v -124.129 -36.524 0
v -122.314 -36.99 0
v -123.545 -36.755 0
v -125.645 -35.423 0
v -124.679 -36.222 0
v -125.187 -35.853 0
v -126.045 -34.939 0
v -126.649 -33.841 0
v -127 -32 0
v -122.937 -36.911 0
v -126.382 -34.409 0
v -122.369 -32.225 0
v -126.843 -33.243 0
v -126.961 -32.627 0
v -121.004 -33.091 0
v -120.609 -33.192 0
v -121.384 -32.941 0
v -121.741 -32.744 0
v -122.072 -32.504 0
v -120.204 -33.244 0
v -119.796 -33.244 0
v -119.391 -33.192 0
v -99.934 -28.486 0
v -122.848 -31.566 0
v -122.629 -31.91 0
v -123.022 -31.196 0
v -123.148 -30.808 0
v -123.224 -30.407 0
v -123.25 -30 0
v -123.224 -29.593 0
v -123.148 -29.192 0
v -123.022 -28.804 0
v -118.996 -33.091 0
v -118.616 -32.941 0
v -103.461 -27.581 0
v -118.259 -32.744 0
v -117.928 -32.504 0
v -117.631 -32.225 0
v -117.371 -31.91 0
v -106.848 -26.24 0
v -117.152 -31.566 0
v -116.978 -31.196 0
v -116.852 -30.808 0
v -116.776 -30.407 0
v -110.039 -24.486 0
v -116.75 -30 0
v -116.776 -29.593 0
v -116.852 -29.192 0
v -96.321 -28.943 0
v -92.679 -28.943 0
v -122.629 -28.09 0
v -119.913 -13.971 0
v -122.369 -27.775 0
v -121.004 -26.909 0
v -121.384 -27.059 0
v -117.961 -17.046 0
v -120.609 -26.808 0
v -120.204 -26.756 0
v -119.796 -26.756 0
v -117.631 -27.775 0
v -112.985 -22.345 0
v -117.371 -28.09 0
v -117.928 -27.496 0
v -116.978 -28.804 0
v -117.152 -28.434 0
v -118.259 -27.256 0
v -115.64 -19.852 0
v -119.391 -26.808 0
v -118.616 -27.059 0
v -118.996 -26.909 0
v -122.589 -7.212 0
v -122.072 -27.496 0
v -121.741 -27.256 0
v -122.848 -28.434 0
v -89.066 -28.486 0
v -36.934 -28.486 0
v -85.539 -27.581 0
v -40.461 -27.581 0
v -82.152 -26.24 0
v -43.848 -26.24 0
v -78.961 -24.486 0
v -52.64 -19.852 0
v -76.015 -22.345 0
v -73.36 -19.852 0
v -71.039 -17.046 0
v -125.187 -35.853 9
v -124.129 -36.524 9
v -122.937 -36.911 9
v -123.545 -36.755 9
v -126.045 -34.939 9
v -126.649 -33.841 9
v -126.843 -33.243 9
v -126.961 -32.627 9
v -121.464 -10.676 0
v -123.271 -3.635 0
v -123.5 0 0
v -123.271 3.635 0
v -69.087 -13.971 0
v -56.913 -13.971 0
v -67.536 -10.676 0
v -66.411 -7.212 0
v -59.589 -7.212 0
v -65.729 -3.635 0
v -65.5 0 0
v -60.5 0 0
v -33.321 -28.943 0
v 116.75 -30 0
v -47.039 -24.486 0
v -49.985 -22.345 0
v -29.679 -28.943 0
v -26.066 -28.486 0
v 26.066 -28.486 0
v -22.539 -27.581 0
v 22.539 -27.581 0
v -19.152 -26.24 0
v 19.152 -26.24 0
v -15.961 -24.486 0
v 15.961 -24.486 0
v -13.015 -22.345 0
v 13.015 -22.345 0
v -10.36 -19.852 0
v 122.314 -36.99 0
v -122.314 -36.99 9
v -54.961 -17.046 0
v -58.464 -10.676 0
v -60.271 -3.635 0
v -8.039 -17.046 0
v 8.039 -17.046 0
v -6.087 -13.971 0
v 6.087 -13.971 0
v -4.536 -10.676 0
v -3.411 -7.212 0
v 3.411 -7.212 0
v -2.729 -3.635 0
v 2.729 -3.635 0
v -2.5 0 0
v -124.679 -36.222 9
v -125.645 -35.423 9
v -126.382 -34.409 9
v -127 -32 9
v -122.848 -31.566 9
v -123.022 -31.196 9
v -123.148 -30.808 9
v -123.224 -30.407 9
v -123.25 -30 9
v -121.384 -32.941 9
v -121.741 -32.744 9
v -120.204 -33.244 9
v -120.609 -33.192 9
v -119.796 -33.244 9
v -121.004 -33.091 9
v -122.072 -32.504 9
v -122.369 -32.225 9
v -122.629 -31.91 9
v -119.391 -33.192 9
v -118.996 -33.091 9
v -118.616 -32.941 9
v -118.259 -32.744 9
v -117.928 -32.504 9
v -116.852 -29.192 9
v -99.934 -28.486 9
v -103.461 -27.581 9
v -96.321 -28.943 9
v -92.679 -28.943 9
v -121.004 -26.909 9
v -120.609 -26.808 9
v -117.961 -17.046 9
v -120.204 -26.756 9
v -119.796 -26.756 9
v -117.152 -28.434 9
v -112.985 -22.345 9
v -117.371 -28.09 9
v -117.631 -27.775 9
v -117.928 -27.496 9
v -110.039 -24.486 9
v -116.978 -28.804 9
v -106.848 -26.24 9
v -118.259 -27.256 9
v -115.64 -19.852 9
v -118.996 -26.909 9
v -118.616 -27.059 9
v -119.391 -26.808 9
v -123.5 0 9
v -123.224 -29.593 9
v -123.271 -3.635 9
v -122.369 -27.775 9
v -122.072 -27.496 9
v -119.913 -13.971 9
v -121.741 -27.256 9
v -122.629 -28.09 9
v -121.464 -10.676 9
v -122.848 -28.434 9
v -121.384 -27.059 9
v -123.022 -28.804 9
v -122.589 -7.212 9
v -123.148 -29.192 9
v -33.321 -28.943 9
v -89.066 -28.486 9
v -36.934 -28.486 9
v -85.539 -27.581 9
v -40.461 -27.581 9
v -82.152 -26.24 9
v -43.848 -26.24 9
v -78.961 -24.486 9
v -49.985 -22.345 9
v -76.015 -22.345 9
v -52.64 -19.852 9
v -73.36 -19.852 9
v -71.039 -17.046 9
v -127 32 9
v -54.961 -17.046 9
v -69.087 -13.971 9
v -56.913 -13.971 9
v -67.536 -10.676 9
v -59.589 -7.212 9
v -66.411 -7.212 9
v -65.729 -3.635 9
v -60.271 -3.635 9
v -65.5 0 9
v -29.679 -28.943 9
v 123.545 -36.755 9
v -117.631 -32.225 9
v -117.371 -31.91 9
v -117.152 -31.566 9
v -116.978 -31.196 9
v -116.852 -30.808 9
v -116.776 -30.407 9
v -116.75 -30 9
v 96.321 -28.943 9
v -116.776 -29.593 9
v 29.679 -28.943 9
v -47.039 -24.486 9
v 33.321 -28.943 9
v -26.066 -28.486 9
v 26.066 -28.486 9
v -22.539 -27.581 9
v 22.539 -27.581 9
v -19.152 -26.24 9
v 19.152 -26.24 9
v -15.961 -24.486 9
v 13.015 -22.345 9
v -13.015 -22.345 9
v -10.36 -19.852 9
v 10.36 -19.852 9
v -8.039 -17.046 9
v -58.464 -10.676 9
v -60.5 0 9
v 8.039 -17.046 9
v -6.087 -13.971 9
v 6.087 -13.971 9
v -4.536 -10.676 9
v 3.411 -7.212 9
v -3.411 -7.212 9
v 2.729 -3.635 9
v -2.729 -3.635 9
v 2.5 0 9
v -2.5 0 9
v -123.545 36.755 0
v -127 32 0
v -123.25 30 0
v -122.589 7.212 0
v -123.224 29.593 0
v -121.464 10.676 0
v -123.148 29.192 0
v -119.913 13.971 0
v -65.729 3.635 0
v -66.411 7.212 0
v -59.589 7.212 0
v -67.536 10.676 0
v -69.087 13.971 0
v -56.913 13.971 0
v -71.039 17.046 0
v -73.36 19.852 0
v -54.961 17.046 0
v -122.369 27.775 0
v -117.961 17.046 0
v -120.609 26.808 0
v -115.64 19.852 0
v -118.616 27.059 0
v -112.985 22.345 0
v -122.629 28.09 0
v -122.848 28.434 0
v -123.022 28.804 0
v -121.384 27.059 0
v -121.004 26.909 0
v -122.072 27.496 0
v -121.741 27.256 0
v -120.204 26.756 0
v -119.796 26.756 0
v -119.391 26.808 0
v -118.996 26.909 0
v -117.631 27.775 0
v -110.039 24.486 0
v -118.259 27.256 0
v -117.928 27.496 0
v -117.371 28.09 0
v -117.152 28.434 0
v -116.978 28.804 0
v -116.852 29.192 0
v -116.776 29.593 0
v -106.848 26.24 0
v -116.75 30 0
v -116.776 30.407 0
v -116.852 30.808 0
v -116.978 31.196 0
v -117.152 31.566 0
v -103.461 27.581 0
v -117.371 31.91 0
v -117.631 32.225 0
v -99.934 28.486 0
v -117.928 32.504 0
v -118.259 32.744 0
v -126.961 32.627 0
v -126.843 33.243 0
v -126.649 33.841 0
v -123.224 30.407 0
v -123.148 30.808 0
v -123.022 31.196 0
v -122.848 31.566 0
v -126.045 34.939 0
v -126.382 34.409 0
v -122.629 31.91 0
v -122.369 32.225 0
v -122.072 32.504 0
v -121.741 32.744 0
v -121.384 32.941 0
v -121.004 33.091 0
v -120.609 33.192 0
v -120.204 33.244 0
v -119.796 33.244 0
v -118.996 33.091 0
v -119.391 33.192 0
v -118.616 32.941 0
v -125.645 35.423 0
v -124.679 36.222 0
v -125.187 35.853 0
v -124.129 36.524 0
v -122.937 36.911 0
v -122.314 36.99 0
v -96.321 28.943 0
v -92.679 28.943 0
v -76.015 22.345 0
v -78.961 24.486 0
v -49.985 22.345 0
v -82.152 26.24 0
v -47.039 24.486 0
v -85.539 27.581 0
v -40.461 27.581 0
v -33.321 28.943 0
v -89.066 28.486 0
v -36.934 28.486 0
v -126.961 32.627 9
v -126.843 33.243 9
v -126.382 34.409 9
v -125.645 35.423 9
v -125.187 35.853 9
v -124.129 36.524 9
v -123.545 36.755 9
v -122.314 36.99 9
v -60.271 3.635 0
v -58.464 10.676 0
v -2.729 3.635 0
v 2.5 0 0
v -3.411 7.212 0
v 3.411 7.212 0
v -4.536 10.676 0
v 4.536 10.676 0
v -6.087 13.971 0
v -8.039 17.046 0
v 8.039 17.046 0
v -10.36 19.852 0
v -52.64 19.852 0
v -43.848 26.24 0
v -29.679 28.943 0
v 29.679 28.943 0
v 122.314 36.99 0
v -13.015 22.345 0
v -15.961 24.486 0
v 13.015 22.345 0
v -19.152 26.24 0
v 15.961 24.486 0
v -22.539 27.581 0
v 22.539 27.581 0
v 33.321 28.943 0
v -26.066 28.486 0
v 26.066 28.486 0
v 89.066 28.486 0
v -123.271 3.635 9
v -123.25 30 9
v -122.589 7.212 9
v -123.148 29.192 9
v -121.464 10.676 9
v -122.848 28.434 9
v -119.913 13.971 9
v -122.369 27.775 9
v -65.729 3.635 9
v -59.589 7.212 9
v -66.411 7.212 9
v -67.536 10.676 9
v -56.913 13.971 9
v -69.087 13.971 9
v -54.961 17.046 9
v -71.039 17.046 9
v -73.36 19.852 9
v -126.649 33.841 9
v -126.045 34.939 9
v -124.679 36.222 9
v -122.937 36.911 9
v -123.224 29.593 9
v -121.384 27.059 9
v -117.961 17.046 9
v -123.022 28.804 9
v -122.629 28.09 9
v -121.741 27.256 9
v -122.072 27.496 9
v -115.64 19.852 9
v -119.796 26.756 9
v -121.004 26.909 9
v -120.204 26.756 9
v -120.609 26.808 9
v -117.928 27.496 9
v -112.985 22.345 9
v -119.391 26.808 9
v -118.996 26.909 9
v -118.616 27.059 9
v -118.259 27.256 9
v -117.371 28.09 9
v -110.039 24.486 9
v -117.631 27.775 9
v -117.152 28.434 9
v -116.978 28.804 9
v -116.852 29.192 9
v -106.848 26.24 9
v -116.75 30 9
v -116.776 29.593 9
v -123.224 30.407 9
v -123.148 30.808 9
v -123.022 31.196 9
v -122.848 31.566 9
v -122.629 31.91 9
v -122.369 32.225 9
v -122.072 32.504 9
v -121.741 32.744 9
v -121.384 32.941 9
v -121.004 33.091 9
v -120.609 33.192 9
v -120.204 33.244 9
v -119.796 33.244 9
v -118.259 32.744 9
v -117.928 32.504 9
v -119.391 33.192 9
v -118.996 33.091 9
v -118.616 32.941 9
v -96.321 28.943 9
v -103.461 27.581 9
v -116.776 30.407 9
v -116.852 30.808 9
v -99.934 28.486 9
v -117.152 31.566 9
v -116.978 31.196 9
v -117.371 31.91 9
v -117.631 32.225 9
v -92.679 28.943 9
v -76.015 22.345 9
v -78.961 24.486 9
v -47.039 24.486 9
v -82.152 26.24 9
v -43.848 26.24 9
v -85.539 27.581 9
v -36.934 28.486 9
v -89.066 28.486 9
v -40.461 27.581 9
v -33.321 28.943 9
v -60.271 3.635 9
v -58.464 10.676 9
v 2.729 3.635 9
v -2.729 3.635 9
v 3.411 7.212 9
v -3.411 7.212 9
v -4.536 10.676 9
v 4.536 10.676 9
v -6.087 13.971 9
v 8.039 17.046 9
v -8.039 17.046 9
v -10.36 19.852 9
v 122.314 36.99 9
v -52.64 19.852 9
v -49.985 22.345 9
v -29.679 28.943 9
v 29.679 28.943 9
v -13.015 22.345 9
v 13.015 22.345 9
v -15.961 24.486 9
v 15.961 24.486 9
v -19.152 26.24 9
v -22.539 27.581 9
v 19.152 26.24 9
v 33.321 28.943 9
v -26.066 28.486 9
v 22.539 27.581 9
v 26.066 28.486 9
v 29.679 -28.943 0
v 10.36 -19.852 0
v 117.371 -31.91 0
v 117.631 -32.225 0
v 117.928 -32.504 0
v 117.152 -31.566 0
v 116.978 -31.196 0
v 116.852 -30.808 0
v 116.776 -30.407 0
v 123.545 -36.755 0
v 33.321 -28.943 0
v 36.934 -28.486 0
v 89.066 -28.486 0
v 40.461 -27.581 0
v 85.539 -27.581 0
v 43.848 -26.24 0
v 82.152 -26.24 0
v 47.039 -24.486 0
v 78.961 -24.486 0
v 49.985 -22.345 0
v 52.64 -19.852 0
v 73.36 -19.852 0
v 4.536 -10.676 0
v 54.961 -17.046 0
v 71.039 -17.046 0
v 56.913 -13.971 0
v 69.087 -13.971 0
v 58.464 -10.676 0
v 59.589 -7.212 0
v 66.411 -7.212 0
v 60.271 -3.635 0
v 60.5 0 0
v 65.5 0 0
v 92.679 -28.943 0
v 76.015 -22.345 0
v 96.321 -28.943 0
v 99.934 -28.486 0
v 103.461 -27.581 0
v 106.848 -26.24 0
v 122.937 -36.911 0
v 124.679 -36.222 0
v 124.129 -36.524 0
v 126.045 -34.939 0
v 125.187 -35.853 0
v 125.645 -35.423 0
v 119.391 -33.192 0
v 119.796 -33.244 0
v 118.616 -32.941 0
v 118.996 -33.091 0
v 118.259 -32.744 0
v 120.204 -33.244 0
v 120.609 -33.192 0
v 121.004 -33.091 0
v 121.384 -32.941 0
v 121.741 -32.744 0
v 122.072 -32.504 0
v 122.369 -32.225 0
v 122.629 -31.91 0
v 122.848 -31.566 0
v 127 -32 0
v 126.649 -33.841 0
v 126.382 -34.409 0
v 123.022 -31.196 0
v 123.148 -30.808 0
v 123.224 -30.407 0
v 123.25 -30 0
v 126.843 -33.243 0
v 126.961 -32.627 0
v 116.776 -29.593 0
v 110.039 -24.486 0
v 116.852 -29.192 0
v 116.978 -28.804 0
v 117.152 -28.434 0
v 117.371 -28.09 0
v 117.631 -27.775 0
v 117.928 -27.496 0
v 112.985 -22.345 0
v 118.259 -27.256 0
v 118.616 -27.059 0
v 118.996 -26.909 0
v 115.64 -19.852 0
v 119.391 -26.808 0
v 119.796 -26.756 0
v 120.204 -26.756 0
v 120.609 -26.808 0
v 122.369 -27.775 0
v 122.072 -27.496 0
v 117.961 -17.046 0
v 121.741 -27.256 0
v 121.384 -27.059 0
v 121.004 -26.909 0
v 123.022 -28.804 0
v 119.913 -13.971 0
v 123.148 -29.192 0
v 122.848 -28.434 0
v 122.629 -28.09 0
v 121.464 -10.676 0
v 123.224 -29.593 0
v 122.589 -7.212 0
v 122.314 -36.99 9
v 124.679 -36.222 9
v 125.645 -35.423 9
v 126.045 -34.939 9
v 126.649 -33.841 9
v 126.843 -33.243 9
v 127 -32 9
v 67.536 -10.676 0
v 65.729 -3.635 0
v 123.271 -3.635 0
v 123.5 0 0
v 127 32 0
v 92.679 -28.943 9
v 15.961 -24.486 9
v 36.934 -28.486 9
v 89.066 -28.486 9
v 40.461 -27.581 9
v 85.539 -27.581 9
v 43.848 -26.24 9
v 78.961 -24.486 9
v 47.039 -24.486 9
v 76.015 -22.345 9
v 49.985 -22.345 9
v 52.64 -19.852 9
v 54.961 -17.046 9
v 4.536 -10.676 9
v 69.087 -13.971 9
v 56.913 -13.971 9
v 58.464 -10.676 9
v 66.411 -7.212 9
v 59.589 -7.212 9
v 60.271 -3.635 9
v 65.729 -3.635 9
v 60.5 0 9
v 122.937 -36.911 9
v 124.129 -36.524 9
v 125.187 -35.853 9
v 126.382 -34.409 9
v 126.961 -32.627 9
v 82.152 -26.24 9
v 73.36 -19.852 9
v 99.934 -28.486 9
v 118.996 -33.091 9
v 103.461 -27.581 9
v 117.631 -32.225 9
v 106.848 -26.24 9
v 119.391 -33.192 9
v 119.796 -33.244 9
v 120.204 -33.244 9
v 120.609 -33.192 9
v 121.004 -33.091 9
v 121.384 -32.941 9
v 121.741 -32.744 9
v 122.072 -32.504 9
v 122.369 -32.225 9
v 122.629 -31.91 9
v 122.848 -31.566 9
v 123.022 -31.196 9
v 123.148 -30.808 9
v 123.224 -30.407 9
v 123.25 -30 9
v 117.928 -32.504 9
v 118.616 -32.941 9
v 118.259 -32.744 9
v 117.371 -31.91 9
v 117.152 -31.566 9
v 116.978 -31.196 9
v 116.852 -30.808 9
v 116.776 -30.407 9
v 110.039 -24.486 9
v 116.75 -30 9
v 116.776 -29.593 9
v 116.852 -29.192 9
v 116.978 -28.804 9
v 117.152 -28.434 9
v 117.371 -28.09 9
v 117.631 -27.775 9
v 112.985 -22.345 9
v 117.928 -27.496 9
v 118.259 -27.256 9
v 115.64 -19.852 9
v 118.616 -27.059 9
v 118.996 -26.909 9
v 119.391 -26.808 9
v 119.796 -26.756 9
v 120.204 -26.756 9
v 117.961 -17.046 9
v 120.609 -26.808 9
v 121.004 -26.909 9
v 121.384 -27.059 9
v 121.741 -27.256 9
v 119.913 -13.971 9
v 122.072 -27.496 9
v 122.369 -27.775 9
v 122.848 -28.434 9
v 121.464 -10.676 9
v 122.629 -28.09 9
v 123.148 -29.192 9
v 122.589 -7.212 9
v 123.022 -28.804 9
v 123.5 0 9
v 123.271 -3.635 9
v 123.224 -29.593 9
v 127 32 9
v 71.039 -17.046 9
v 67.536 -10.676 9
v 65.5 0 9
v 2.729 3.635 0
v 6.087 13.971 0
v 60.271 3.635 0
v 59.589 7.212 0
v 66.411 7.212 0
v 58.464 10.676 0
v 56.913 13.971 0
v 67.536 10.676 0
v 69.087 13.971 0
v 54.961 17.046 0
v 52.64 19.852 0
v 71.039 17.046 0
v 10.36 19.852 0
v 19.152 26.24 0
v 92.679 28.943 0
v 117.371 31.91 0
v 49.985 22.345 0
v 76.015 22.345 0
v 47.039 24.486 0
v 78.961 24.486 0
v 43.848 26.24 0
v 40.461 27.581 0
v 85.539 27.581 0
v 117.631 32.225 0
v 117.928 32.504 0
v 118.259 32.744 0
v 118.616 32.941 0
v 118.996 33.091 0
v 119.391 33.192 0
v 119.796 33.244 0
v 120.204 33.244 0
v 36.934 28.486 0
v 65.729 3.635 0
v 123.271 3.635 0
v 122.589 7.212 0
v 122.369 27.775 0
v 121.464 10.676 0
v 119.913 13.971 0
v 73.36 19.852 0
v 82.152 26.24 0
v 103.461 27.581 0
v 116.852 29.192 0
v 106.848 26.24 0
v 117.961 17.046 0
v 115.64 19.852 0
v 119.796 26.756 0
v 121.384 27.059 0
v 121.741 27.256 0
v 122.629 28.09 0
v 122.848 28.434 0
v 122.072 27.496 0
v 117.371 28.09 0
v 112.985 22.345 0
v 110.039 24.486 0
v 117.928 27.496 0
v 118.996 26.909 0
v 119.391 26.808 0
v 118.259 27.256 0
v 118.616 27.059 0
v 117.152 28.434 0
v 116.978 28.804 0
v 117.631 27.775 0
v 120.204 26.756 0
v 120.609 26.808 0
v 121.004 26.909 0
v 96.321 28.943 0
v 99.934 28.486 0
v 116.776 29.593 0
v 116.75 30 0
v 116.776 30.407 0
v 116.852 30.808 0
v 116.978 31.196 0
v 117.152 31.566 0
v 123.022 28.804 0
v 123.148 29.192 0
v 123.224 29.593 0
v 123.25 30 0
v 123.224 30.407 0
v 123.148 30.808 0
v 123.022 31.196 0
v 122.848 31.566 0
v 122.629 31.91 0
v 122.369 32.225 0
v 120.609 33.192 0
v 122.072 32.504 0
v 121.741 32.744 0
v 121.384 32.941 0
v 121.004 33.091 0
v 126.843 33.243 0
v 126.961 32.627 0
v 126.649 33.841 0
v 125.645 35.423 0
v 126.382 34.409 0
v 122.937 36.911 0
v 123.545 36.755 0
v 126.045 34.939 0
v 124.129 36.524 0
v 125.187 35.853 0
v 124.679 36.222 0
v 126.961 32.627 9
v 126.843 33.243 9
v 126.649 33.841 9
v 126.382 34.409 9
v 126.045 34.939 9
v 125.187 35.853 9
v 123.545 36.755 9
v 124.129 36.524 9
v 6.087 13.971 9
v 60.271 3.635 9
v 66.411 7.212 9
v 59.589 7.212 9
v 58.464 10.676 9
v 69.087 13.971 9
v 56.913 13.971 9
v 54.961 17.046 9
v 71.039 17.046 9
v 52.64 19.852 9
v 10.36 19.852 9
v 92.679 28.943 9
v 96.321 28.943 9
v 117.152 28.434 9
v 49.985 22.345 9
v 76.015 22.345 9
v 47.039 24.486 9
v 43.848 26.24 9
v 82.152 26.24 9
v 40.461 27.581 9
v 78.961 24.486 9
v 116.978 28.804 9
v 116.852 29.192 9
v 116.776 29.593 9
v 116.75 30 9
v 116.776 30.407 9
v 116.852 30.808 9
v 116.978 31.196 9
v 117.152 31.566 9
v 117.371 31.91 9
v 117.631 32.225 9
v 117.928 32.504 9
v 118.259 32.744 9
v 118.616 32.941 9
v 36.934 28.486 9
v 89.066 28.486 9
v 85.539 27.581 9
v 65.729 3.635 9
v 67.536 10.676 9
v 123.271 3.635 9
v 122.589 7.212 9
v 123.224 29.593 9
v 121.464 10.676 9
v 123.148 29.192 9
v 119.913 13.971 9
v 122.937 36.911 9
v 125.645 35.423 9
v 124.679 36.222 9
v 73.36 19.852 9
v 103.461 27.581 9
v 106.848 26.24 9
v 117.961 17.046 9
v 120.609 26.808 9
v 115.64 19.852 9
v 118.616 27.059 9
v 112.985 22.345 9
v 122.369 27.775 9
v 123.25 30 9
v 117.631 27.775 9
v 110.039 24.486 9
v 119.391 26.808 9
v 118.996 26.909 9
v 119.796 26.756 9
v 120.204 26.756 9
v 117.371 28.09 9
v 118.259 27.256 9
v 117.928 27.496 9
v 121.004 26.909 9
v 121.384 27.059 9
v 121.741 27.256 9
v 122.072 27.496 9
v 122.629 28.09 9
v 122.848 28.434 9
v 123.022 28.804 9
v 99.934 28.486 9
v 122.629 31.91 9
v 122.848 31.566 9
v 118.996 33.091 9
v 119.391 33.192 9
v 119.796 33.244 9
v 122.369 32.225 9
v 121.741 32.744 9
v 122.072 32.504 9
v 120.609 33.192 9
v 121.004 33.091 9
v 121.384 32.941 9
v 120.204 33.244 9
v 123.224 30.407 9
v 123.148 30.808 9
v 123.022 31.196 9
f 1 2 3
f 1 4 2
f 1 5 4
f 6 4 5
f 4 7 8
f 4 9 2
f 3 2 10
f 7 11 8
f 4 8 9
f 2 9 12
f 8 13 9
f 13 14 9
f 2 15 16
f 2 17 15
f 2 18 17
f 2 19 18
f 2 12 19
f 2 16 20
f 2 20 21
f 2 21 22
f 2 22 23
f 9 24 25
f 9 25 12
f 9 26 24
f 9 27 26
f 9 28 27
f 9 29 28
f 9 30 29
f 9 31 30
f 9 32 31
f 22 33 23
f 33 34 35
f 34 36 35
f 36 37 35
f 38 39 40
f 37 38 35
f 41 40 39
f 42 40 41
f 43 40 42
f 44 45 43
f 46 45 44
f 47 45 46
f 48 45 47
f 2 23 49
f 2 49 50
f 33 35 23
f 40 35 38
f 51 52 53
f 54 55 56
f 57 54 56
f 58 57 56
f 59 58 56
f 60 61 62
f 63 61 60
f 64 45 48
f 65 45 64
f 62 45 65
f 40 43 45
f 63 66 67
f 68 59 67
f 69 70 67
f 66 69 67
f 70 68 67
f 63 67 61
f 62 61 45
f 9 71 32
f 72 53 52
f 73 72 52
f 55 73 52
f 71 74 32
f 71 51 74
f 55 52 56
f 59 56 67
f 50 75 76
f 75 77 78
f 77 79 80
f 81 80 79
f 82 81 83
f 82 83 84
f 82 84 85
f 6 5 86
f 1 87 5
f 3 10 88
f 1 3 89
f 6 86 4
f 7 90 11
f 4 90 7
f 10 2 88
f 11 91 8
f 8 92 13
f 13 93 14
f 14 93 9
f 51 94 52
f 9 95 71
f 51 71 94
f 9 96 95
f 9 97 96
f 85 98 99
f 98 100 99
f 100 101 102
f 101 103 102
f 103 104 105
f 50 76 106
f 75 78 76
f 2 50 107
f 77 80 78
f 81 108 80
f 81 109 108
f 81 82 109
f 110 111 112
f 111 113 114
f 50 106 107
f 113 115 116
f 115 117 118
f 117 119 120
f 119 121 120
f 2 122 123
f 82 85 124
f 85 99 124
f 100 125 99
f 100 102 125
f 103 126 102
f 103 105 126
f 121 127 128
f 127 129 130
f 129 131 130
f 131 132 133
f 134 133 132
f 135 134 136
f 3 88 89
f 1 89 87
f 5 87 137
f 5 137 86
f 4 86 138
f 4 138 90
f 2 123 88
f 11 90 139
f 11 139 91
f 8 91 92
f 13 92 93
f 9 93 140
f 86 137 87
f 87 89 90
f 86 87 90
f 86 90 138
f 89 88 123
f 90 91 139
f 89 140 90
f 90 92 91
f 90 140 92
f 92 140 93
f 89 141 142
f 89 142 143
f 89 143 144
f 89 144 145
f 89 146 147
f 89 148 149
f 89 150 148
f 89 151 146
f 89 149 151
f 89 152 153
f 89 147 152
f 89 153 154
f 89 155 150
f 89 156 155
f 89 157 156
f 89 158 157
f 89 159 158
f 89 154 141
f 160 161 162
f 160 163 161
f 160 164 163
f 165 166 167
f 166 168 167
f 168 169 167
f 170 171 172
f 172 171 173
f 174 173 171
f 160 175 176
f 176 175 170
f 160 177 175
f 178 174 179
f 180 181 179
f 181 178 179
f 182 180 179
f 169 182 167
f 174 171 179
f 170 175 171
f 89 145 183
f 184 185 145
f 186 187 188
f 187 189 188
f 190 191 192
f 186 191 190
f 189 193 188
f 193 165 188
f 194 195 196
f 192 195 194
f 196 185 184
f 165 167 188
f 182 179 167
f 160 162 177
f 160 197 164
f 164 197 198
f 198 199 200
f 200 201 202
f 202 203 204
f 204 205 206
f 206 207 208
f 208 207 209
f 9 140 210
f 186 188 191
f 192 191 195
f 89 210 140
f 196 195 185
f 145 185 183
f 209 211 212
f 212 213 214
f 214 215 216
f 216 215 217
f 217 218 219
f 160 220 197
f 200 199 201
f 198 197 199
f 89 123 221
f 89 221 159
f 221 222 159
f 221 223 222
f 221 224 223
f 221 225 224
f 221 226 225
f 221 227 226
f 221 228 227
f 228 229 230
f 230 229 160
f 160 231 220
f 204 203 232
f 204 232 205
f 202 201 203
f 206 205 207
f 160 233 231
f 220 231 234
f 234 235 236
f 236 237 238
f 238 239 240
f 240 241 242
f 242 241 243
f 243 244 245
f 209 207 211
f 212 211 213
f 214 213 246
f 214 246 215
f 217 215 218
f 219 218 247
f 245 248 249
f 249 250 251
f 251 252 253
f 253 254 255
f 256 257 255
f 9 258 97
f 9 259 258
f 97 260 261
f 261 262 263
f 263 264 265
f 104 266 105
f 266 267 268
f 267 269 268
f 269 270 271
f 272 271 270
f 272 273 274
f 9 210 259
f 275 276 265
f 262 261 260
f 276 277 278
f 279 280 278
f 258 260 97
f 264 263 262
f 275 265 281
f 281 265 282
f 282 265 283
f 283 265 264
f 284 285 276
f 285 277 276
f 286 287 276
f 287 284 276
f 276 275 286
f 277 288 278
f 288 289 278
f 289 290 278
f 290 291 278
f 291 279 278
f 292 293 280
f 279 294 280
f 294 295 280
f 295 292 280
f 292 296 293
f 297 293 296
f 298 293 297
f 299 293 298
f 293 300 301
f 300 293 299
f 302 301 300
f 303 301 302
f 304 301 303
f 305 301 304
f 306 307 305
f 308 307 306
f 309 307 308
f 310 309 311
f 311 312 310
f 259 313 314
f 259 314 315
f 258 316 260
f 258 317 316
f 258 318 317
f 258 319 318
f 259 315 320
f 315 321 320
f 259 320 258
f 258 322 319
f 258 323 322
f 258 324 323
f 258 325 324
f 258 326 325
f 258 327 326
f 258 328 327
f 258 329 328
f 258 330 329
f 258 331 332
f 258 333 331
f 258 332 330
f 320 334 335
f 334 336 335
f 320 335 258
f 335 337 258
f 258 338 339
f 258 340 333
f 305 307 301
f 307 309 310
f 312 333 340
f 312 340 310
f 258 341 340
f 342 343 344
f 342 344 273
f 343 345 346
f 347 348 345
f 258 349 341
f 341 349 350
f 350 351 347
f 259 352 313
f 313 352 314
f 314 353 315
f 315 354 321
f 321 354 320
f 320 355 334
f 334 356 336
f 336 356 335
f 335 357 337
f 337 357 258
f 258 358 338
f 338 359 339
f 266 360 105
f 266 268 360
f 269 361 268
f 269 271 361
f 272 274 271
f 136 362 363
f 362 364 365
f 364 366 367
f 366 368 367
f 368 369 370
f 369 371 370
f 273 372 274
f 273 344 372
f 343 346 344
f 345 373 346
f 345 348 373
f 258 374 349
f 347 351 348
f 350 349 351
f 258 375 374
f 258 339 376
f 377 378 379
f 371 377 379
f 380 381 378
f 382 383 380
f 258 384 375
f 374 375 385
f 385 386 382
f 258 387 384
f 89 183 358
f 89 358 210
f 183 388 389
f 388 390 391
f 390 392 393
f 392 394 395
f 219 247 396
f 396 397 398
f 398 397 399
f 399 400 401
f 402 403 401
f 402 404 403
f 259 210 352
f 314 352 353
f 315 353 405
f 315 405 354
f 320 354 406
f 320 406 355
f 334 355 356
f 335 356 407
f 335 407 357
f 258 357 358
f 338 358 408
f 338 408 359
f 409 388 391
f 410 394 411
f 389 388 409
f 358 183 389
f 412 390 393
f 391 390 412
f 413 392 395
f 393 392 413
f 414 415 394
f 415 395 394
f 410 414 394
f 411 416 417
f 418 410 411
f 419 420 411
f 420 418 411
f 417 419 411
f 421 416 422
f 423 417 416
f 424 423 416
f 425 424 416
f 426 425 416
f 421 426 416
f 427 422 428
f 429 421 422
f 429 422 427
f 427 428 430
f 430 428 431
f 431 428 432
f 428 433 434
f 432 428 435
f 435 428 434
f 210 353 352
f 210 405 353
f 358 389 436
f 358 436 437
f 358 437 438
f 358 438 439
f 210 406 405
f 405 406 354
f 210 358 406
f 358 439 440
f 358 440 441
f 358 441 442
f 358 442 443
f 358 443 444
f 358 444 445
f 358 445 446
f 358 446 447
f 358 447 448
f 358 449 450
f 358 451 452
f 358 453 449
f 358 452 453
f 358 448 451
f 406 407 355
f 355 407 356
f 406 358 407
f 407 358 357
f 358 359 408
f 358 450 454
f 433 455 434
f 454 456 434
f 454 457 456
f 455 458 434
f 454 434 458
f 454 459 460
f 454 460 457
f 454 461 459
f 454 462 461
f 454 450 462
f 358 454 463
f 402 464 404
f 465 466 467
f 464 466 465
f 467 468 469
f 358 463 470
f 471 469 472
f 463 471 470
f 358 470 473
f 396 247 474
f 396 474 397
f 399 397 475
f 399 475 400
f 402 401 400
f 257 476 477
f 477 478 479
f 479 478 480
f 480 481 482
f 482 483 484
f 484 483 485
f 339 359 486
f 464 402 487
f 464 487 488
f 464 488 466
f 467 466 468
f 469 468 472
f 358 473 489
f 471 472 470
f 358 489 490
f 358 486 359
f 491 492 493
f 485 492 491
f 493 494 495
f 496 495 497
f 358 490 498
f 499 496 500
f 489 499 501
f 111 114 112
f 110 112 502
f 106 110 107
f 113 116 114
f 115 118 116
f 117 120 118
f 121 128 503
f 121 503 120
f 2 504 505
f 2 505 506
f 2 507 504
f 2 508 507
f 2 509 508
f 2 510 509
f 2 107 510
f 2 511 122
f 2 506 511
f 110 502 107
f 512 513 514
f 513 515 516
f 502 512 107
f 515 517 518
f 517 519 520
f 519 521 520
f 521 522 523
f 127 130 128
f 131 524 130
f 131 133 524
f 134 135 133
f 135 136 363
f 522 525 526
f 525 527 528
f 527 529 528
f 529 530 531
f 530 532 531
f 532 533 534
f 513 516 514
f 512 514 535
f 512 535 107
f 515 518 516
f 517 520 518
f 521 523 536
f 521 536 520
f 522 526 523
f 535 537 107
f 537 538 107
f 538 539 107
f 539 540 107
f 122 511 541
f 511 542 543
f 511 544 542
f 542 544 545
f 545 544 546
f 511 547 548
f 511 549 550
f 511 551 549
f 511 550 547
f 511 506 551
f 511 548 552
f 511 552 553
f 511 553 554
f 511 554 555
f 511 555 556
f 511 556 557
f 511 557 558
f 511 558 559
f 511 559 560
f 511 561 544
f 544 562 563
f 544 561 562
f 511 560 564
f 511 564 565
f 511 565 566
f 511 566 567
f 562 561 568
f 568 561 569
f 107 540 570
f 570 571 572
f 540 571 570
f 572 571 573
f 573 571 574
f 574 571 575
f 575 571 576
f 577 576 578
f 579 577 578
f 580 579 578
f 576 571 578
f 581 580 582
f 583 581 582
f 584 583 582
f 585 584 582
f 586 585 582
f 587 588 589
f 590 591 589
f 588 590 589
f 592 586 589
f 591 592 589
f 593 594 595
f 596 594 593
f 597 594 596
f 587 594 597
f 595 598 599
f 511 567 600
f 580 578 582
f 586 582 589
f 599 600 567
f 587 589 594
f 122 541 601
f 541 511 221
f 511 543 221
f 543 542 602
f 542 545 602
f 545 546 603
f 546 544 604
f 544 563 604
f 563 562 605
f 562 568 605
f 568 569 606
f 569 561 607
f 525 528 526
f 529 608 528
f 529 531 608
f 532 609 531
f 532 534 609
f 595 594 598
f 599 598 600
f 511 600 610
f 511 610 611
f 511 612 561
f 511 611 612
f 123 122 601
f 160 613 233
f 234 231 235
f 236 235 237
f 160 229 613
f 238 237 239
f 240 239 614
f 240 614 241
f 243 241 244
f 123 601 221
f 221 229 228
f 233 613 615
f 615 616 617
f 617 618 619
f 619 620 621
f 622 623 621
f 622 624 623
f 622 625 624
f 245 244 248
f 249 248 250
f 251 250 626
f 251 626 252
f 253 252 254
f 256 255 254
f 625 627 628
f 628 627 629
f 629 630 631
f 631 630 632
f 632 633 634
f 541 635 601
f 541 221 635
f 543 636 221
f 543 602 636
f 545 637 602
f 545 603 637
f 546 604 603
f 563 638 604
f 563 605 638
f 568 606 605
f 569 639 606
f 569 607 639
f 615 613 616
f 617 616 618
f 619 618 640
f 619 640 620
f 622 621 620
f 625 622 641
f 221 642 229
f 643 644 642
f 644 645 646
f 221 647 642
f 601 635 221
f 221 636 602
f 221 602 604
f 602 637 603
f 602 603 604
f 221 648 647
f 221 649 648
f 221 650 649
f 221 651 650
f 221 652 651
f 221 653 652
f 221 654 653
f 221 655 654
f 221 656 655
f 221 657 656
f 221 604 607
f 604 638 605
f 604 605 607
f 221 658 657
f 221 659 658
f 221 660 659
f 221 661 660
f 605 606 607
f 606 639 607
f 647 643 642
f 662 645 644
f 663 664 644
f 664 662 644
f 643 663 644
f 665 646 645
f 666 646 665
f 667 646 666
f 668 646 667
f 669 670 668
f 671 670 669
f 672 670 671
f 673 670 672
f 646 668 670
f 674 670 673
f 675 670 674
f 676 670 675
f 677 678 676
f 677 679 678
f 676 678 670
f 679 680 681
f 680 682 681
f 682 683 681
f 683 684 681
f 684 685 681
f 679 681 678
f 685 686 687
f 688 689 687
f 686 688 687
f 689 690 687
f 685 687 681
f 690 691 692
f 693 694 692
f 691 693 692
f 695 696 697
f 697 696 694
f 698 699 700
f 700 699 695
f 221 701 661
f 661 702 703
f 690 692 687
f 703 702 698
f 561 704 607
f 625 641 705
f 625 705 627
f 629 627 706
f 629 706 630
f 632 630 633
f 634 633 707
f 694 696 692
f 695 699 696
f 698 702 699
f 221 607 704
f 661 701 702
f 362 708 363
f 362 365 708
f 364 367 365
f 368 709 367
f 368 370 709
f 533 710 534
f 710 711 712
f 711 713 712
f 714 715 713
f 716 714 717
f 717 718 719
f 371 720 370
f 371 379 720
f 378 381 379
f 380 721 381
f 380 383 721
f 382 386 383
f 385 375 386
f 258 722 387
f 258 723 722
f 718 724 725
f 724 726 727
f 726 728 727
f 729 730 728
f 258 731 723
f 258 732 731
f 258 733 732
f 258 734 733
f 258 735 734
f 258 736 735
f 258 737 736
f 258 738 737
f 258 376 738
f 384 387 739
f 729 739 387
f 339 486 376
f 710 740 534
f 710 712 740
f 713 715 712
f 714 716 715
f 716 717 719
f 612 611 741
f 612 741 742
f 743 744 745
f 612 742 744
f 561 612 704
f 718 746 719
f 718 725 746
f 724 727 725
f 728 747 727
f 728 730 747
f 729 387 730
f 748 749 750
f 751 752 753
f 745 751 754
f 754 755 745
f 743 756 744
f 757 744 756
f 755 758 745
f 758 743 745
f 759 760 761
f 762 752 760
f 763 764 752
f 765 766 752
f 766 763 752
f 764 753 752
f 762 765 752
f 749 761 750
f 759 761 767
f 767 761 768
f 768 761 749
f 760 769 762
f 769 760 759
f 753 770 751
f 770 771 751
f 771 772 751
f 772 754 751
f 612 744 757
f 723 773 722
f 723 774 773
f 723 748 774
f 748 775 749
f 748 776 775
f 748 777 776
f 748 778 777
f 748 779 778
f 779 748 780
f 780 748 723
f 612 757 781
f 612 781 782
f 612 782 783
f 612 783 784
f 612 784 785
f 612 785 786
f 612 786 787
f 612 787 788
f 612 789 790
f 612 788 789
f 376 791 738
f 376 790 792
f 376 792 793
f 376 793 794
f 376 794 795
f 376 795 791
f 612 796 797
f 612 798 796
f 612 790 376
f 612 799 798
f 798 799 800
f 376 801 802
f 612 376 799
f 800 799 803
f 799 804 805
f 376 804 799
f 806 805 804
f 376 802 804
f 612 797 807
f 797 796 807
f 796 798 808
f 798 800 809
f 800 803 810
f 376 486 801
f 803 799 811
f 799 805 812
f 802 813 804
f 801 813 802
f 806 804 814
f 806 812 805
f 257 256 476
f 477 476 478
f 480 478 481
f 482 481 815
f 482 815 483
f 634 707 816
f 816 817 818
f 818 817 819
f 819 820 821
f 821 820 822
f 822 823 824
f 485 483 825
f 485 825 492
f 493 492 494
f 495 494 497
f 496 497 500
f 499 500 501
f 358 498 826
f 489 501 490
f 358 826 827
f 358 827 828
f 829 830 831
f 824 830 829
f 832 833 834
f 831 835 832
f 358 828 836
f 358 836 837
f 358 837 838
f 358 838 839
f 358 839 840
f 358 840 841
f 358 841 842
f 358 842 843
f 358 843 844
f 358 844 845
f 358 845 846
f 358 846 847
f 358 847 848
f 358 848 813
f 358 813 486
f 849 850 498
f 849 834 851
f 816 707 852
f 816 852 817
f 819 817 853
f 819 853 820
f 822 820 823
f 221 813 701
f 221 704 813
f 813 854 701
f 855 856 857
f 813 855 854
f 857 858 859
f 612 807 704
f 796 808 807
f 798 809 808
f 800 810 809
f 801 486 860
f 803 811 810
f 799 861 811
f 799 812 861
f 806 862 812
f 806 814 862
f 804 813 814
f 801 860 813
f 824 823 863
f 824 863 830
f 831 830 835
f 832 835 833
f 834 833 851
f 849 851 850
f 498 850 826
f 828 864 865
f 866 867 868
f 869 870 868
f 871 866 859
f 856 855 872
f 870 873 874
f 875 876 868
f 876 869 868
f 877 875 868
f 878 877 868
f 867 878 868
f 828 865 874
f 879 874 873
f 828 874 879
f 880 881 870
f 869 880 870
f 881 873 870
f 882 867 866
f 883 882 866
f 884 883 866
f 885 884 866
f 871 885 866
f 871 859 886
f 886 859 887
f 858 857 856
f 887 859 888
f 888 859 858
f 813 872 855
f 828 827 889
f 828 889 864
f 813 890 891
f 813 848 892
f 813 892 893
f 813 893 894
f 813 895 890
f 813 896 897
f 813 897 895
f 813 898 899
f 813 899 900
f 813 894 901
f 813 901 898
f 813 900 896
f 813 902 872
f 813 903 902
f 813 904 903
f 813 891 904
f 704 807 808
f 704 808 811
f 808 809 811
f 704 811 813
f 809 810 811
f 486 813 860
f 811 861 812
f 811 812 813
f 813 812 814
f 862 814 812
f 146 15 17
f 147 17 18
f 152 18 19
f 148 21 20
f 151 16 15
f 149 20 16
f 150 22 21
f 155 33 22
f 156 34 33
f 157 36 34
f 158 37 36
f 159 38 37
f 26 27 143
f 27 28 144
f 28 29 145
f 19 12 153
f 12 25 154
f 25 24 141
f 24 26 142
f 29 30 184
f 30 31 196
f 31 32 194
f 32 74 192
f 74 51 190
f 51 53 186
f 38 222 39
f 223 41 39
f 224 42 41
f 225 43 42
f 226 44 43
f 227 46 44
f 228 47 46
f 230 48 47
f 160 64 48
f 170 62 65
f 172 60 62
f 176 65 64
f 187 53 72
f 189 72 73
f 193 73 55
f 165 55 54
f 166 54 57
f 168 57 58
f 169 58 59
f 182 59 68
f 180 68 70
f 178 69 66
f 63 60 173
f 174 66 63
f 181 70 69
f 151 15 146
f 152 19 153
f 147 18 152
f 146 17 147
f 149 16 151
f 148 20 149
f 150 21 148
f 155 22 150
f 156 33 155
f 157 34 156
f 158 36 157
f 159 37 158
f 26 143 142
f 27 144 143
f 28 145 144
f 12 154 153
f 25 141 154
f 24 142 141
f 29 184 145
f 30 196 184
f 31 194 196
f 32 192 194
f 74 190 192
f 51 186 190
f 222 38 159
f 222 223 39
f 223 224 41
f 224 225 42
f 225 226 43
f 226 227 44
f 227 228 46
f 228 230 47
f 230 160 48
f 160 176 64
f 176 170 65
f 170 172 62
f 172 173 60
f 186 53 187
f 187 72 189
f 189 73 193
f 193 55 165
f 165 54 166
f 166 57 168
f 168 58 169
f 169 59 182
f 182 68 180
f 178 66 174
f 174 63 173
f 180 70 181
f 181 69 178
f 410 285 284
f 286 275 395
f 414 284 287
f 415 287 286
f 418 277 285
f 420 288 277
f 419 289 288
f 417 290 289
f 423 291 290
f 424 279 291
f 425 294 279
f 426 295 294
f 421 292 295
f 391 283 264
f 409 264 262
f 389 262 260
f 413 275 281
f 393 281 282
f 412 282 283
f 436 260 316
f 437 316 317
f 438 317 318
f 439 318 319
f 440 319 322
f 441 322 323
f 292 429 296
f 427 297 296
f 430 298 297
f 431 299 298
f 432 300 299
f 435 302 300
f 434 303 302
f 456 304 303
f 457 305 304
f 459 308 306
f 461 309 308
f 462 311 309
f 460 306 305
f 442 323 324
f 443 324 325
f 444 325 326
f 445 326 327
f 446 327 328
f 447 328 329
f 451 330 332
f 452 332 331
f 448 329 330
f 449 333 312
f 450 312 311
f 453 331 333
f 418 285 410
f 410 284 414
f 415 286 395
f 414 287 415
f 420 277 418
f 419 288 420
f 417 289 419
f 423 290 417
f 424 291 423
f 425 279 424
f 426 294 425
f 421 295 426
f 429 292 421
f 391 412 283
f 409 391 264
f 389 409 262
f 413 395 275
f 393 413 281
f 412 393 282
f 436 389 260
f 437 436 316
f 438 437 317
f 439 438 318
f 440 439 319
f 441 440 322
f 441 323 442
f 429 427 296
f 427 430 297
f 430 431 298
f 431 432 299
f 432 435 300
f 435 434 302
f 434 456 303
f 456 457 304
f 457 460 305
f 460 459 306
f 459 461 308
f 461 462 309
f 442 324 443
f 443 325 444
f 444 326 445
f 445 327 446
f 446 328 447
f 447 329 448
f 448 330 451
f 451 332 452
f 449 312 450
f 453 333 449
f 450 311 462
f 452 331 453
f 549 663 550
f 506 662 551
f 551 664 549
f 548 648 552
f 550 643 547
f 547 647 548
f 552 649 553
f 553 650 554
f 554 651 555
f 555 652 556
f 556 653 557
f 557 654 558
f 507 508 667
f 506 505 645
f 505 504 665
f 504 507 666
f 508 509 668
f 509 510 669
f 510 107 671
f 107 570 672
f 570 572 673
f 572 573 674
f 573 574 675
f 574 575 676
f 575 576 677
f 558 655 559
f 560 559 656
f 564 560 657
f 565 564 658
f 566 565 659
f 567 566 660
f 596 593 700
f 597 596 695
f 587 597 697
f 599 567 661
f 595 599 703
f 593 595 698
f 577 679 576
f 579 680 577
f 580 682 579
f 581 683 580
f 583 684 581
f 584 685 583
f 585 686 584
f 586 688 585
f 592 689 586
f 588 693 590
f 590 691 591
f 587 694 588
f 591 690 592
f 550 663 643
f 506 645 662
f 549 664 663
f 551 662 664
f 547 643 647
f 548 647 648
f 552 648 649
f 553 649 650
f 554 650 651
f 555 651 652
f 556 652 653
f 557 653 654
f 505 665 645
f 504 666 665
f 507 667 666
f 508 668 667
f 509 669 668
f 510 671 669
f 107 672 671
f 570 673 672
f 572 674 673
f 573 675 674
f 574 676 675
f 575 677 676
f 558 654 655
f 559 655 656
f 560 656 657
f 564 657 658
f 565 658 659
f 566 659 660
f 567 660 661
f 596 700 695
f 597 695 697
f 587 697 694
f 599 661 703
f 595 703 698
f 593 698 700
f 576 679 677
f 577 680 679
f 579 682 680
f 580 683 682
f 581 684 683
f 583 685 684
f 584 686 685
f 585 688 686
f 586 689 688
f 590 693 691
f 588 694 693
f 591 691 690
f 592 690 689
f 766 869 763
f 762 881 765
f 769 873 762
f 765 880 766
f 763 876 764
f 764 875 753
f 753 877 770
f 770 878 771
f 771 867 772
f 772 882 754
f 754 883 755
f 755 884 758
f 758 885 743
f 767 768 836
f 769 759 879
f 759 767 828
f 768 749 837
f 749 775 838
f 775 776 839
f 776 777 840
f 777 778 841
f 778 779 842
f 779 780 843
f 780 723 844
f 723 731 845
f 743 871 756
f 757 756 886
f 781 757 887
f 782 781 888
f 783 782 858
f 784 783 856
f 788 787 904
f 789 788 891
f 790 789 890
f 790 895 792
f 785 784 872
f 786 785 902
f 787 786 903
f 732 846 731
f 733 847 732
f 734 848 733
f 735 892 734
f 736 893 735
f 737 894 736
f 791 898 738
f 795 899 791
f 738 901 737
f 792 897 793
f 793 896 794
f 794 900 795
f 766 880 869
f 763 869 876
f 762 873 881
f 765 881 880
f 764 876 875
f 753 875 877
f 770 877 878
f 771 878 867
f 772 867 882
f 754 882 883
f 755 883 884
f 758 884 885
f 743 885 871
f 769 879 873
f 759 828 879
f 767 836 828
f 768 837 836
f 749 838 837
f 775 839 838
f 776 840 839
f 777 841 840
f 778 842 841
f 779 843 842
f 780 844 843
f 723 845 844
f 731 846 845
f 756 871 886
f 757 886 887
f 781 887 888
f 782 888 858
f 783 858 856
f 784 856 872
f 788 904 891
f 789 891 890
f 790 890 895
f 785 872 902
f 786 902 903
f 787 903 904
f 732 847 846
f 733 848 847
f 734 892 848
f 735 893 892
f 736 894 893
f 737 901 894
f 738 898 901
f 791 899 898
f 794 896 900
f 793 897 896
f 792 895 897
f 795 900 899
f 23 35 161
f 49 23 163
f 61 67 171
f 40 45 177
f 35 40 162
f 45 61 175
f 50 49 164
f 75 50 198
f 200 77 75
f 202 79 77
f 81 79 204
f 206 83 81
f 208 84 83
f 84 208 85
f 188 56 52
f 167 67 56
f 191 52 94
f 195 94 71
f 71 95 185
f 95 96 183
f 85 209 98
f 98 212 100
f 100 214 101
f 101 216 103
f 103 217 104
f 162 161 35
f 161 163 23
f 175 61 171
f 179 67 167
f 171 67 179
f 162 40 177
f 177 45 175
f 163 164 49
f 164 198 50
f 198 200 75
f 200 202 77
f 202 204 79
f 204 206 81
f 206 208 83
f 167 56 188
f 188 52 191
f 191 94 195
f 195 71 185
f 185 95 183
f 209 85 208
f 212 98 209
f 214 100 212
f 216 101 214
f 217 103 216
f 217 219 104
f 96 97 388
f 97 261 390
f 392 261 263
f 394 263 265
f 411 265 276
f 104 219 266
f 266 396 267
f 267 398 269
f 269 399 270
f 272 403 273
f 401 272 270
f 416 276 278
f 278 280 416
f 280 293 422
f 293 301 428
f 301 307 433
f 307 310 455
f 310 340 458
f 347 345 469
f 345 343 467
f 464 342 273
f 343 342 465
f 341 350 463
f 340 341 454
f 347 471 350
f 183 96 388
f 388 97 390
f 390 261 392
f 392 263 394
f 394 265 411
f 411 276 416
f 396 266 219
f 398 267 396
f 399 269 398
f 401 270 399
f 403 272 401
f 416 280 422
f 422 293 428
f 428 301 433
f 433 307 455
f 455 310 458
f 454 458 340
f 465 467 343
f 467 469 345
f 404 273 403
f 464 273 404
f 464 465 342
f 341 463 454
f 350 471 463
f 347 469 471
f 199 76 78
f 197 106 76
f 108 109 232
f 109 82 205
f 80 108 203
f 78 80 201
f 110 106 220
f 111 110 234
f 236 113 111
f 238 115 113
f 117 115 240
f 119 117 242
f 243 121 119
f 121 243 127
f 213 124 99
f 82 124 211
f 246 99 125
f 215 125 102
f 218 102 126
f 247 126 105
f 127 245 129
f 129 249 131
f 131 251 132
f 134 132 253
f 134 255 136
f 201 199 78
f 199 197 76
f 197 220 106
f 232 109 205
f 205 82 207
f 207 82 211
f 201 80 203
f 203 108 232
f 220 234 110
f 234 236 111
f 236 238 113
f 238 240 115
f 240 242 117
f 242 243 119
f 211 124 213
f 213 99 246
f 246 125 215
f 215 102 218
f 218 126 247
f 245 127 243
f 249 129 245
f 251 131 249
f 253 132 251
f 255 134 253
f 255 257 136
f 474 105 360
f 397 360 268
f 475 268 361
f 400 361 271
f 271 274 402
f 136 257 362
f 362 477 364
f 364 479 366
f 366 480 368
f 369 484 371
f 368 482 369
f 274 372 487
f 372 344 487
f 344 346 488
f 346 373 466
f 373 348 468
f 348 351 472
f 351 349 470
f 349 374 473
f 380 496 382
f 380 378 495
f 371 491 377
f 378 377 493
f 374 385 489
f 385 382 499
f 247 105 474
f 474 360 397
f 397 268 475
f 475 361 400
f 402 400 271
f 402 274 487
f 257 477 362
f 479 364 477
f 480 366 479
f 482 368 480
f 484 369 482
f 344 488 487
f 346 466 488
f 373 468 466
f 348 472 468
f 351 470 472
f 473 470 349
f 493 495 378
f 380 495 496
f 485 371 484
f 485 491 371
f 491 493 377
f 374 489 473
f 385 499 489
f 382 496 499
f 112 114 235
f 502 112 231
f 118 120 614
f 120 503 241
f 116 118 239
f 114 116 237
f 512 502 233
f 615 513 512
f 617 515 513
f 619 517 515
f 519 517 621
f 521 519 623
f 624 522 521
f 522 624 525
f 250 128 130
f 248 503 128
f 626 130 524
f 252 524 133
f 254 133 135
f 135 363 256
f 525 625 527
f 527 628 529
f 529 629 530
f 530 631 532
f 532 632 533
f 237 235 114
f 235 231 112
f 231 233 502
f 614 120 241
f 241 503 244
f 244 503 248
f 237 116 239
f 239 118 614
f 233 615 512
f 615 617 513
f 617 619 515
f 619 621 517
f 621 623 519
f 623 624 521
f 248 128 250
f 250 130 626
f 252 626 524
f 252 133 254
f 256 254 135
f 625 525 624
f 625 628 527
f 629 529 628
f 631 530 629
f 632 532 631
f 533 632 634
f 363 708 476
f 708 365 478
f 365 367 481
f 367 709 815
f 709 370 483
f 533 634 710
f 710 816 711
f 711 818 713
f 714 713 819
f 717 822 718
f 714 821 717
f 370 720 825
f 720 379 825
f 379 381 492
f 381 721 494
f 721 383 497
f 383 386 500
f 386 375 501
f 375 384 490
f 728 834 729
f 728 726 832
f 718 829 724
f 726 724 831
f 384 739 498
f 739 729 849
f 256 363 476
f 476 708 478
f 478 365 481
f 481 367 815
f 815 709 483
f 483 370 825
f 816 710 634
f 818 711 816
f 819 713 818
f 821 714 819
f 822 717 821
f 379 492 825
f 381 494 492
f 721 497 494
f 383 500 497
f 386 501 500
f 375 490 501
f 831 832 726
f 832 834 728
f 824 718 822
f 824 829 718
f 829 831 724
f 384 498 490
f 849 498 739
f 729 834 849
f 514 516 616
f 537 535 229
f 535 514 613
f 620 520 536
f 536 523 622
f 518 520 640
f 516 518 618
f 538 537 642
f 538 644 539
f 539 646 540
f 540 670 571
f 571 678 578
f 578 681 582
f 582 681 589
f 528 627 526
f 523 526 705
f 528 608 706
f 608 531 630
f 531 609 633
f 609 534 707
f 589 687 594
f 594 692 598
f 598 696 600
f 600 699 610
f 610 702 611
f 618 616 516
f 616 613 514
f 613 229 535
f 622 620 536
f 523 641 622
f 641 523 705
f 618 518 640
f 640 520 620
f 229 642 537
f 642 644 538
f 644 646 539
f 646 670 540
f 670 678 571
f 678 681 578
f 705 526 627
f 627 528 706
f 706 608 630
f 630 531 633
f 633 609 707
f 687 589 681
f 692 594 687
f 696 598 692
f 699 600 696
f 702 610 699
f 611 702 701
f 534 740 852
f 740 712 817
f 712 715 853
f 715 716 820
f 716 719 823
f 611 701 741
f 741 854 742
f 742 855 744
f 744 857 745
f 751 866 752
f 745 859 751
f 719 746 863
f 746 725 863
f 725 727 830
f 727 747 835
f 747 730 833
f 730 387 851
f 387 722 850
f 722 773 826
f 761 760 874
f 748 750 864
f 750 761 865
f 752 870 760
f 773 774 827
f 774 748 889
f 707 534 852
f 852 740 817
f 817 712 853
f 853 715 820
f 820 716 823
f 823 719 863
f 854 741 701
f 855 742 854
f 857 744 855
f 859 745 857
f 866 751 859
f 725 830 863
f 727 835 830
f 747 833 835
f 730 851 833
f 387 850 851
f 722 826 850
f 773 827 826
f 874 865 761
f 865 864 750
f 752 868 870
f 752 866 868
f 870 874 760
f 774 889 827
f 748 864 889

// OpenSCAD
$fn = 50;

difference() {
	union() {
		hull() {
			translate(v = [-122.0, 32.0, 0]) {
				cylinder(h = 9, r = 5);
			}
			translate(v = [122.0, 32.0, 0]) {
				cylinder(h = 9, r = 5);
			}
			translate(v = [-122.0, -32.0, 0]) {
				cylinder(h = 9, r = 5);
			}
			translate(v = [122.0, -32.0, 0]) {
				cylinder(h = 9, r = 5);
			}
		}
	}
	union() {
		translate(v = [-120.0, -30.0, -100.0]) {
			cylinder(h = 200, r = 3.25);
		}
		translate(v = [-120.0, 30.0, -100.0]) {
			cylinder(h = 200, r = 3.25);
		}
		translate(v = [120.0, -30.0, -100.0]) {
			cylinder(h = 200, r = 3.25);
		}
		translate(v = [120.0, 30.0, -100.0]) {
			cylinder(h = 200, r = 3.25);
		}
		translate(v = [-120.0, -30.0, -100.0]) {
			cylinder(h = 200, r = 1.8);
		}
		translate(v = [-120.0, 30.0, -100.0]) {
			cylinder(h = 200, r = 1.8);
		}
		translate(v = [120.0, -30.0, -100.0]) {
			cylinder(h = 200, r = 1.8);
		}
		translate(v = [120.0, 30.0, -100.0]) {
			cylinder(h = 200, r = 1.8);
		}
		translate(v = [-94.5, 0, 0.0]) {
			cylinder(h = 9, r = 29.0);
		}
		translate(v = [-31.5, 0, 0.0]) {
			cylinder(h = 9, r = 29.0);
		}
		translate(v = [31.5, 0, 0.0]) {
			cylinder(h = 9, r = 29.0);
		}
		translate(v = [94.5, 0, 0.0]) {
			cylinder(h = 9, r = 29.0);
		}
	}
}
